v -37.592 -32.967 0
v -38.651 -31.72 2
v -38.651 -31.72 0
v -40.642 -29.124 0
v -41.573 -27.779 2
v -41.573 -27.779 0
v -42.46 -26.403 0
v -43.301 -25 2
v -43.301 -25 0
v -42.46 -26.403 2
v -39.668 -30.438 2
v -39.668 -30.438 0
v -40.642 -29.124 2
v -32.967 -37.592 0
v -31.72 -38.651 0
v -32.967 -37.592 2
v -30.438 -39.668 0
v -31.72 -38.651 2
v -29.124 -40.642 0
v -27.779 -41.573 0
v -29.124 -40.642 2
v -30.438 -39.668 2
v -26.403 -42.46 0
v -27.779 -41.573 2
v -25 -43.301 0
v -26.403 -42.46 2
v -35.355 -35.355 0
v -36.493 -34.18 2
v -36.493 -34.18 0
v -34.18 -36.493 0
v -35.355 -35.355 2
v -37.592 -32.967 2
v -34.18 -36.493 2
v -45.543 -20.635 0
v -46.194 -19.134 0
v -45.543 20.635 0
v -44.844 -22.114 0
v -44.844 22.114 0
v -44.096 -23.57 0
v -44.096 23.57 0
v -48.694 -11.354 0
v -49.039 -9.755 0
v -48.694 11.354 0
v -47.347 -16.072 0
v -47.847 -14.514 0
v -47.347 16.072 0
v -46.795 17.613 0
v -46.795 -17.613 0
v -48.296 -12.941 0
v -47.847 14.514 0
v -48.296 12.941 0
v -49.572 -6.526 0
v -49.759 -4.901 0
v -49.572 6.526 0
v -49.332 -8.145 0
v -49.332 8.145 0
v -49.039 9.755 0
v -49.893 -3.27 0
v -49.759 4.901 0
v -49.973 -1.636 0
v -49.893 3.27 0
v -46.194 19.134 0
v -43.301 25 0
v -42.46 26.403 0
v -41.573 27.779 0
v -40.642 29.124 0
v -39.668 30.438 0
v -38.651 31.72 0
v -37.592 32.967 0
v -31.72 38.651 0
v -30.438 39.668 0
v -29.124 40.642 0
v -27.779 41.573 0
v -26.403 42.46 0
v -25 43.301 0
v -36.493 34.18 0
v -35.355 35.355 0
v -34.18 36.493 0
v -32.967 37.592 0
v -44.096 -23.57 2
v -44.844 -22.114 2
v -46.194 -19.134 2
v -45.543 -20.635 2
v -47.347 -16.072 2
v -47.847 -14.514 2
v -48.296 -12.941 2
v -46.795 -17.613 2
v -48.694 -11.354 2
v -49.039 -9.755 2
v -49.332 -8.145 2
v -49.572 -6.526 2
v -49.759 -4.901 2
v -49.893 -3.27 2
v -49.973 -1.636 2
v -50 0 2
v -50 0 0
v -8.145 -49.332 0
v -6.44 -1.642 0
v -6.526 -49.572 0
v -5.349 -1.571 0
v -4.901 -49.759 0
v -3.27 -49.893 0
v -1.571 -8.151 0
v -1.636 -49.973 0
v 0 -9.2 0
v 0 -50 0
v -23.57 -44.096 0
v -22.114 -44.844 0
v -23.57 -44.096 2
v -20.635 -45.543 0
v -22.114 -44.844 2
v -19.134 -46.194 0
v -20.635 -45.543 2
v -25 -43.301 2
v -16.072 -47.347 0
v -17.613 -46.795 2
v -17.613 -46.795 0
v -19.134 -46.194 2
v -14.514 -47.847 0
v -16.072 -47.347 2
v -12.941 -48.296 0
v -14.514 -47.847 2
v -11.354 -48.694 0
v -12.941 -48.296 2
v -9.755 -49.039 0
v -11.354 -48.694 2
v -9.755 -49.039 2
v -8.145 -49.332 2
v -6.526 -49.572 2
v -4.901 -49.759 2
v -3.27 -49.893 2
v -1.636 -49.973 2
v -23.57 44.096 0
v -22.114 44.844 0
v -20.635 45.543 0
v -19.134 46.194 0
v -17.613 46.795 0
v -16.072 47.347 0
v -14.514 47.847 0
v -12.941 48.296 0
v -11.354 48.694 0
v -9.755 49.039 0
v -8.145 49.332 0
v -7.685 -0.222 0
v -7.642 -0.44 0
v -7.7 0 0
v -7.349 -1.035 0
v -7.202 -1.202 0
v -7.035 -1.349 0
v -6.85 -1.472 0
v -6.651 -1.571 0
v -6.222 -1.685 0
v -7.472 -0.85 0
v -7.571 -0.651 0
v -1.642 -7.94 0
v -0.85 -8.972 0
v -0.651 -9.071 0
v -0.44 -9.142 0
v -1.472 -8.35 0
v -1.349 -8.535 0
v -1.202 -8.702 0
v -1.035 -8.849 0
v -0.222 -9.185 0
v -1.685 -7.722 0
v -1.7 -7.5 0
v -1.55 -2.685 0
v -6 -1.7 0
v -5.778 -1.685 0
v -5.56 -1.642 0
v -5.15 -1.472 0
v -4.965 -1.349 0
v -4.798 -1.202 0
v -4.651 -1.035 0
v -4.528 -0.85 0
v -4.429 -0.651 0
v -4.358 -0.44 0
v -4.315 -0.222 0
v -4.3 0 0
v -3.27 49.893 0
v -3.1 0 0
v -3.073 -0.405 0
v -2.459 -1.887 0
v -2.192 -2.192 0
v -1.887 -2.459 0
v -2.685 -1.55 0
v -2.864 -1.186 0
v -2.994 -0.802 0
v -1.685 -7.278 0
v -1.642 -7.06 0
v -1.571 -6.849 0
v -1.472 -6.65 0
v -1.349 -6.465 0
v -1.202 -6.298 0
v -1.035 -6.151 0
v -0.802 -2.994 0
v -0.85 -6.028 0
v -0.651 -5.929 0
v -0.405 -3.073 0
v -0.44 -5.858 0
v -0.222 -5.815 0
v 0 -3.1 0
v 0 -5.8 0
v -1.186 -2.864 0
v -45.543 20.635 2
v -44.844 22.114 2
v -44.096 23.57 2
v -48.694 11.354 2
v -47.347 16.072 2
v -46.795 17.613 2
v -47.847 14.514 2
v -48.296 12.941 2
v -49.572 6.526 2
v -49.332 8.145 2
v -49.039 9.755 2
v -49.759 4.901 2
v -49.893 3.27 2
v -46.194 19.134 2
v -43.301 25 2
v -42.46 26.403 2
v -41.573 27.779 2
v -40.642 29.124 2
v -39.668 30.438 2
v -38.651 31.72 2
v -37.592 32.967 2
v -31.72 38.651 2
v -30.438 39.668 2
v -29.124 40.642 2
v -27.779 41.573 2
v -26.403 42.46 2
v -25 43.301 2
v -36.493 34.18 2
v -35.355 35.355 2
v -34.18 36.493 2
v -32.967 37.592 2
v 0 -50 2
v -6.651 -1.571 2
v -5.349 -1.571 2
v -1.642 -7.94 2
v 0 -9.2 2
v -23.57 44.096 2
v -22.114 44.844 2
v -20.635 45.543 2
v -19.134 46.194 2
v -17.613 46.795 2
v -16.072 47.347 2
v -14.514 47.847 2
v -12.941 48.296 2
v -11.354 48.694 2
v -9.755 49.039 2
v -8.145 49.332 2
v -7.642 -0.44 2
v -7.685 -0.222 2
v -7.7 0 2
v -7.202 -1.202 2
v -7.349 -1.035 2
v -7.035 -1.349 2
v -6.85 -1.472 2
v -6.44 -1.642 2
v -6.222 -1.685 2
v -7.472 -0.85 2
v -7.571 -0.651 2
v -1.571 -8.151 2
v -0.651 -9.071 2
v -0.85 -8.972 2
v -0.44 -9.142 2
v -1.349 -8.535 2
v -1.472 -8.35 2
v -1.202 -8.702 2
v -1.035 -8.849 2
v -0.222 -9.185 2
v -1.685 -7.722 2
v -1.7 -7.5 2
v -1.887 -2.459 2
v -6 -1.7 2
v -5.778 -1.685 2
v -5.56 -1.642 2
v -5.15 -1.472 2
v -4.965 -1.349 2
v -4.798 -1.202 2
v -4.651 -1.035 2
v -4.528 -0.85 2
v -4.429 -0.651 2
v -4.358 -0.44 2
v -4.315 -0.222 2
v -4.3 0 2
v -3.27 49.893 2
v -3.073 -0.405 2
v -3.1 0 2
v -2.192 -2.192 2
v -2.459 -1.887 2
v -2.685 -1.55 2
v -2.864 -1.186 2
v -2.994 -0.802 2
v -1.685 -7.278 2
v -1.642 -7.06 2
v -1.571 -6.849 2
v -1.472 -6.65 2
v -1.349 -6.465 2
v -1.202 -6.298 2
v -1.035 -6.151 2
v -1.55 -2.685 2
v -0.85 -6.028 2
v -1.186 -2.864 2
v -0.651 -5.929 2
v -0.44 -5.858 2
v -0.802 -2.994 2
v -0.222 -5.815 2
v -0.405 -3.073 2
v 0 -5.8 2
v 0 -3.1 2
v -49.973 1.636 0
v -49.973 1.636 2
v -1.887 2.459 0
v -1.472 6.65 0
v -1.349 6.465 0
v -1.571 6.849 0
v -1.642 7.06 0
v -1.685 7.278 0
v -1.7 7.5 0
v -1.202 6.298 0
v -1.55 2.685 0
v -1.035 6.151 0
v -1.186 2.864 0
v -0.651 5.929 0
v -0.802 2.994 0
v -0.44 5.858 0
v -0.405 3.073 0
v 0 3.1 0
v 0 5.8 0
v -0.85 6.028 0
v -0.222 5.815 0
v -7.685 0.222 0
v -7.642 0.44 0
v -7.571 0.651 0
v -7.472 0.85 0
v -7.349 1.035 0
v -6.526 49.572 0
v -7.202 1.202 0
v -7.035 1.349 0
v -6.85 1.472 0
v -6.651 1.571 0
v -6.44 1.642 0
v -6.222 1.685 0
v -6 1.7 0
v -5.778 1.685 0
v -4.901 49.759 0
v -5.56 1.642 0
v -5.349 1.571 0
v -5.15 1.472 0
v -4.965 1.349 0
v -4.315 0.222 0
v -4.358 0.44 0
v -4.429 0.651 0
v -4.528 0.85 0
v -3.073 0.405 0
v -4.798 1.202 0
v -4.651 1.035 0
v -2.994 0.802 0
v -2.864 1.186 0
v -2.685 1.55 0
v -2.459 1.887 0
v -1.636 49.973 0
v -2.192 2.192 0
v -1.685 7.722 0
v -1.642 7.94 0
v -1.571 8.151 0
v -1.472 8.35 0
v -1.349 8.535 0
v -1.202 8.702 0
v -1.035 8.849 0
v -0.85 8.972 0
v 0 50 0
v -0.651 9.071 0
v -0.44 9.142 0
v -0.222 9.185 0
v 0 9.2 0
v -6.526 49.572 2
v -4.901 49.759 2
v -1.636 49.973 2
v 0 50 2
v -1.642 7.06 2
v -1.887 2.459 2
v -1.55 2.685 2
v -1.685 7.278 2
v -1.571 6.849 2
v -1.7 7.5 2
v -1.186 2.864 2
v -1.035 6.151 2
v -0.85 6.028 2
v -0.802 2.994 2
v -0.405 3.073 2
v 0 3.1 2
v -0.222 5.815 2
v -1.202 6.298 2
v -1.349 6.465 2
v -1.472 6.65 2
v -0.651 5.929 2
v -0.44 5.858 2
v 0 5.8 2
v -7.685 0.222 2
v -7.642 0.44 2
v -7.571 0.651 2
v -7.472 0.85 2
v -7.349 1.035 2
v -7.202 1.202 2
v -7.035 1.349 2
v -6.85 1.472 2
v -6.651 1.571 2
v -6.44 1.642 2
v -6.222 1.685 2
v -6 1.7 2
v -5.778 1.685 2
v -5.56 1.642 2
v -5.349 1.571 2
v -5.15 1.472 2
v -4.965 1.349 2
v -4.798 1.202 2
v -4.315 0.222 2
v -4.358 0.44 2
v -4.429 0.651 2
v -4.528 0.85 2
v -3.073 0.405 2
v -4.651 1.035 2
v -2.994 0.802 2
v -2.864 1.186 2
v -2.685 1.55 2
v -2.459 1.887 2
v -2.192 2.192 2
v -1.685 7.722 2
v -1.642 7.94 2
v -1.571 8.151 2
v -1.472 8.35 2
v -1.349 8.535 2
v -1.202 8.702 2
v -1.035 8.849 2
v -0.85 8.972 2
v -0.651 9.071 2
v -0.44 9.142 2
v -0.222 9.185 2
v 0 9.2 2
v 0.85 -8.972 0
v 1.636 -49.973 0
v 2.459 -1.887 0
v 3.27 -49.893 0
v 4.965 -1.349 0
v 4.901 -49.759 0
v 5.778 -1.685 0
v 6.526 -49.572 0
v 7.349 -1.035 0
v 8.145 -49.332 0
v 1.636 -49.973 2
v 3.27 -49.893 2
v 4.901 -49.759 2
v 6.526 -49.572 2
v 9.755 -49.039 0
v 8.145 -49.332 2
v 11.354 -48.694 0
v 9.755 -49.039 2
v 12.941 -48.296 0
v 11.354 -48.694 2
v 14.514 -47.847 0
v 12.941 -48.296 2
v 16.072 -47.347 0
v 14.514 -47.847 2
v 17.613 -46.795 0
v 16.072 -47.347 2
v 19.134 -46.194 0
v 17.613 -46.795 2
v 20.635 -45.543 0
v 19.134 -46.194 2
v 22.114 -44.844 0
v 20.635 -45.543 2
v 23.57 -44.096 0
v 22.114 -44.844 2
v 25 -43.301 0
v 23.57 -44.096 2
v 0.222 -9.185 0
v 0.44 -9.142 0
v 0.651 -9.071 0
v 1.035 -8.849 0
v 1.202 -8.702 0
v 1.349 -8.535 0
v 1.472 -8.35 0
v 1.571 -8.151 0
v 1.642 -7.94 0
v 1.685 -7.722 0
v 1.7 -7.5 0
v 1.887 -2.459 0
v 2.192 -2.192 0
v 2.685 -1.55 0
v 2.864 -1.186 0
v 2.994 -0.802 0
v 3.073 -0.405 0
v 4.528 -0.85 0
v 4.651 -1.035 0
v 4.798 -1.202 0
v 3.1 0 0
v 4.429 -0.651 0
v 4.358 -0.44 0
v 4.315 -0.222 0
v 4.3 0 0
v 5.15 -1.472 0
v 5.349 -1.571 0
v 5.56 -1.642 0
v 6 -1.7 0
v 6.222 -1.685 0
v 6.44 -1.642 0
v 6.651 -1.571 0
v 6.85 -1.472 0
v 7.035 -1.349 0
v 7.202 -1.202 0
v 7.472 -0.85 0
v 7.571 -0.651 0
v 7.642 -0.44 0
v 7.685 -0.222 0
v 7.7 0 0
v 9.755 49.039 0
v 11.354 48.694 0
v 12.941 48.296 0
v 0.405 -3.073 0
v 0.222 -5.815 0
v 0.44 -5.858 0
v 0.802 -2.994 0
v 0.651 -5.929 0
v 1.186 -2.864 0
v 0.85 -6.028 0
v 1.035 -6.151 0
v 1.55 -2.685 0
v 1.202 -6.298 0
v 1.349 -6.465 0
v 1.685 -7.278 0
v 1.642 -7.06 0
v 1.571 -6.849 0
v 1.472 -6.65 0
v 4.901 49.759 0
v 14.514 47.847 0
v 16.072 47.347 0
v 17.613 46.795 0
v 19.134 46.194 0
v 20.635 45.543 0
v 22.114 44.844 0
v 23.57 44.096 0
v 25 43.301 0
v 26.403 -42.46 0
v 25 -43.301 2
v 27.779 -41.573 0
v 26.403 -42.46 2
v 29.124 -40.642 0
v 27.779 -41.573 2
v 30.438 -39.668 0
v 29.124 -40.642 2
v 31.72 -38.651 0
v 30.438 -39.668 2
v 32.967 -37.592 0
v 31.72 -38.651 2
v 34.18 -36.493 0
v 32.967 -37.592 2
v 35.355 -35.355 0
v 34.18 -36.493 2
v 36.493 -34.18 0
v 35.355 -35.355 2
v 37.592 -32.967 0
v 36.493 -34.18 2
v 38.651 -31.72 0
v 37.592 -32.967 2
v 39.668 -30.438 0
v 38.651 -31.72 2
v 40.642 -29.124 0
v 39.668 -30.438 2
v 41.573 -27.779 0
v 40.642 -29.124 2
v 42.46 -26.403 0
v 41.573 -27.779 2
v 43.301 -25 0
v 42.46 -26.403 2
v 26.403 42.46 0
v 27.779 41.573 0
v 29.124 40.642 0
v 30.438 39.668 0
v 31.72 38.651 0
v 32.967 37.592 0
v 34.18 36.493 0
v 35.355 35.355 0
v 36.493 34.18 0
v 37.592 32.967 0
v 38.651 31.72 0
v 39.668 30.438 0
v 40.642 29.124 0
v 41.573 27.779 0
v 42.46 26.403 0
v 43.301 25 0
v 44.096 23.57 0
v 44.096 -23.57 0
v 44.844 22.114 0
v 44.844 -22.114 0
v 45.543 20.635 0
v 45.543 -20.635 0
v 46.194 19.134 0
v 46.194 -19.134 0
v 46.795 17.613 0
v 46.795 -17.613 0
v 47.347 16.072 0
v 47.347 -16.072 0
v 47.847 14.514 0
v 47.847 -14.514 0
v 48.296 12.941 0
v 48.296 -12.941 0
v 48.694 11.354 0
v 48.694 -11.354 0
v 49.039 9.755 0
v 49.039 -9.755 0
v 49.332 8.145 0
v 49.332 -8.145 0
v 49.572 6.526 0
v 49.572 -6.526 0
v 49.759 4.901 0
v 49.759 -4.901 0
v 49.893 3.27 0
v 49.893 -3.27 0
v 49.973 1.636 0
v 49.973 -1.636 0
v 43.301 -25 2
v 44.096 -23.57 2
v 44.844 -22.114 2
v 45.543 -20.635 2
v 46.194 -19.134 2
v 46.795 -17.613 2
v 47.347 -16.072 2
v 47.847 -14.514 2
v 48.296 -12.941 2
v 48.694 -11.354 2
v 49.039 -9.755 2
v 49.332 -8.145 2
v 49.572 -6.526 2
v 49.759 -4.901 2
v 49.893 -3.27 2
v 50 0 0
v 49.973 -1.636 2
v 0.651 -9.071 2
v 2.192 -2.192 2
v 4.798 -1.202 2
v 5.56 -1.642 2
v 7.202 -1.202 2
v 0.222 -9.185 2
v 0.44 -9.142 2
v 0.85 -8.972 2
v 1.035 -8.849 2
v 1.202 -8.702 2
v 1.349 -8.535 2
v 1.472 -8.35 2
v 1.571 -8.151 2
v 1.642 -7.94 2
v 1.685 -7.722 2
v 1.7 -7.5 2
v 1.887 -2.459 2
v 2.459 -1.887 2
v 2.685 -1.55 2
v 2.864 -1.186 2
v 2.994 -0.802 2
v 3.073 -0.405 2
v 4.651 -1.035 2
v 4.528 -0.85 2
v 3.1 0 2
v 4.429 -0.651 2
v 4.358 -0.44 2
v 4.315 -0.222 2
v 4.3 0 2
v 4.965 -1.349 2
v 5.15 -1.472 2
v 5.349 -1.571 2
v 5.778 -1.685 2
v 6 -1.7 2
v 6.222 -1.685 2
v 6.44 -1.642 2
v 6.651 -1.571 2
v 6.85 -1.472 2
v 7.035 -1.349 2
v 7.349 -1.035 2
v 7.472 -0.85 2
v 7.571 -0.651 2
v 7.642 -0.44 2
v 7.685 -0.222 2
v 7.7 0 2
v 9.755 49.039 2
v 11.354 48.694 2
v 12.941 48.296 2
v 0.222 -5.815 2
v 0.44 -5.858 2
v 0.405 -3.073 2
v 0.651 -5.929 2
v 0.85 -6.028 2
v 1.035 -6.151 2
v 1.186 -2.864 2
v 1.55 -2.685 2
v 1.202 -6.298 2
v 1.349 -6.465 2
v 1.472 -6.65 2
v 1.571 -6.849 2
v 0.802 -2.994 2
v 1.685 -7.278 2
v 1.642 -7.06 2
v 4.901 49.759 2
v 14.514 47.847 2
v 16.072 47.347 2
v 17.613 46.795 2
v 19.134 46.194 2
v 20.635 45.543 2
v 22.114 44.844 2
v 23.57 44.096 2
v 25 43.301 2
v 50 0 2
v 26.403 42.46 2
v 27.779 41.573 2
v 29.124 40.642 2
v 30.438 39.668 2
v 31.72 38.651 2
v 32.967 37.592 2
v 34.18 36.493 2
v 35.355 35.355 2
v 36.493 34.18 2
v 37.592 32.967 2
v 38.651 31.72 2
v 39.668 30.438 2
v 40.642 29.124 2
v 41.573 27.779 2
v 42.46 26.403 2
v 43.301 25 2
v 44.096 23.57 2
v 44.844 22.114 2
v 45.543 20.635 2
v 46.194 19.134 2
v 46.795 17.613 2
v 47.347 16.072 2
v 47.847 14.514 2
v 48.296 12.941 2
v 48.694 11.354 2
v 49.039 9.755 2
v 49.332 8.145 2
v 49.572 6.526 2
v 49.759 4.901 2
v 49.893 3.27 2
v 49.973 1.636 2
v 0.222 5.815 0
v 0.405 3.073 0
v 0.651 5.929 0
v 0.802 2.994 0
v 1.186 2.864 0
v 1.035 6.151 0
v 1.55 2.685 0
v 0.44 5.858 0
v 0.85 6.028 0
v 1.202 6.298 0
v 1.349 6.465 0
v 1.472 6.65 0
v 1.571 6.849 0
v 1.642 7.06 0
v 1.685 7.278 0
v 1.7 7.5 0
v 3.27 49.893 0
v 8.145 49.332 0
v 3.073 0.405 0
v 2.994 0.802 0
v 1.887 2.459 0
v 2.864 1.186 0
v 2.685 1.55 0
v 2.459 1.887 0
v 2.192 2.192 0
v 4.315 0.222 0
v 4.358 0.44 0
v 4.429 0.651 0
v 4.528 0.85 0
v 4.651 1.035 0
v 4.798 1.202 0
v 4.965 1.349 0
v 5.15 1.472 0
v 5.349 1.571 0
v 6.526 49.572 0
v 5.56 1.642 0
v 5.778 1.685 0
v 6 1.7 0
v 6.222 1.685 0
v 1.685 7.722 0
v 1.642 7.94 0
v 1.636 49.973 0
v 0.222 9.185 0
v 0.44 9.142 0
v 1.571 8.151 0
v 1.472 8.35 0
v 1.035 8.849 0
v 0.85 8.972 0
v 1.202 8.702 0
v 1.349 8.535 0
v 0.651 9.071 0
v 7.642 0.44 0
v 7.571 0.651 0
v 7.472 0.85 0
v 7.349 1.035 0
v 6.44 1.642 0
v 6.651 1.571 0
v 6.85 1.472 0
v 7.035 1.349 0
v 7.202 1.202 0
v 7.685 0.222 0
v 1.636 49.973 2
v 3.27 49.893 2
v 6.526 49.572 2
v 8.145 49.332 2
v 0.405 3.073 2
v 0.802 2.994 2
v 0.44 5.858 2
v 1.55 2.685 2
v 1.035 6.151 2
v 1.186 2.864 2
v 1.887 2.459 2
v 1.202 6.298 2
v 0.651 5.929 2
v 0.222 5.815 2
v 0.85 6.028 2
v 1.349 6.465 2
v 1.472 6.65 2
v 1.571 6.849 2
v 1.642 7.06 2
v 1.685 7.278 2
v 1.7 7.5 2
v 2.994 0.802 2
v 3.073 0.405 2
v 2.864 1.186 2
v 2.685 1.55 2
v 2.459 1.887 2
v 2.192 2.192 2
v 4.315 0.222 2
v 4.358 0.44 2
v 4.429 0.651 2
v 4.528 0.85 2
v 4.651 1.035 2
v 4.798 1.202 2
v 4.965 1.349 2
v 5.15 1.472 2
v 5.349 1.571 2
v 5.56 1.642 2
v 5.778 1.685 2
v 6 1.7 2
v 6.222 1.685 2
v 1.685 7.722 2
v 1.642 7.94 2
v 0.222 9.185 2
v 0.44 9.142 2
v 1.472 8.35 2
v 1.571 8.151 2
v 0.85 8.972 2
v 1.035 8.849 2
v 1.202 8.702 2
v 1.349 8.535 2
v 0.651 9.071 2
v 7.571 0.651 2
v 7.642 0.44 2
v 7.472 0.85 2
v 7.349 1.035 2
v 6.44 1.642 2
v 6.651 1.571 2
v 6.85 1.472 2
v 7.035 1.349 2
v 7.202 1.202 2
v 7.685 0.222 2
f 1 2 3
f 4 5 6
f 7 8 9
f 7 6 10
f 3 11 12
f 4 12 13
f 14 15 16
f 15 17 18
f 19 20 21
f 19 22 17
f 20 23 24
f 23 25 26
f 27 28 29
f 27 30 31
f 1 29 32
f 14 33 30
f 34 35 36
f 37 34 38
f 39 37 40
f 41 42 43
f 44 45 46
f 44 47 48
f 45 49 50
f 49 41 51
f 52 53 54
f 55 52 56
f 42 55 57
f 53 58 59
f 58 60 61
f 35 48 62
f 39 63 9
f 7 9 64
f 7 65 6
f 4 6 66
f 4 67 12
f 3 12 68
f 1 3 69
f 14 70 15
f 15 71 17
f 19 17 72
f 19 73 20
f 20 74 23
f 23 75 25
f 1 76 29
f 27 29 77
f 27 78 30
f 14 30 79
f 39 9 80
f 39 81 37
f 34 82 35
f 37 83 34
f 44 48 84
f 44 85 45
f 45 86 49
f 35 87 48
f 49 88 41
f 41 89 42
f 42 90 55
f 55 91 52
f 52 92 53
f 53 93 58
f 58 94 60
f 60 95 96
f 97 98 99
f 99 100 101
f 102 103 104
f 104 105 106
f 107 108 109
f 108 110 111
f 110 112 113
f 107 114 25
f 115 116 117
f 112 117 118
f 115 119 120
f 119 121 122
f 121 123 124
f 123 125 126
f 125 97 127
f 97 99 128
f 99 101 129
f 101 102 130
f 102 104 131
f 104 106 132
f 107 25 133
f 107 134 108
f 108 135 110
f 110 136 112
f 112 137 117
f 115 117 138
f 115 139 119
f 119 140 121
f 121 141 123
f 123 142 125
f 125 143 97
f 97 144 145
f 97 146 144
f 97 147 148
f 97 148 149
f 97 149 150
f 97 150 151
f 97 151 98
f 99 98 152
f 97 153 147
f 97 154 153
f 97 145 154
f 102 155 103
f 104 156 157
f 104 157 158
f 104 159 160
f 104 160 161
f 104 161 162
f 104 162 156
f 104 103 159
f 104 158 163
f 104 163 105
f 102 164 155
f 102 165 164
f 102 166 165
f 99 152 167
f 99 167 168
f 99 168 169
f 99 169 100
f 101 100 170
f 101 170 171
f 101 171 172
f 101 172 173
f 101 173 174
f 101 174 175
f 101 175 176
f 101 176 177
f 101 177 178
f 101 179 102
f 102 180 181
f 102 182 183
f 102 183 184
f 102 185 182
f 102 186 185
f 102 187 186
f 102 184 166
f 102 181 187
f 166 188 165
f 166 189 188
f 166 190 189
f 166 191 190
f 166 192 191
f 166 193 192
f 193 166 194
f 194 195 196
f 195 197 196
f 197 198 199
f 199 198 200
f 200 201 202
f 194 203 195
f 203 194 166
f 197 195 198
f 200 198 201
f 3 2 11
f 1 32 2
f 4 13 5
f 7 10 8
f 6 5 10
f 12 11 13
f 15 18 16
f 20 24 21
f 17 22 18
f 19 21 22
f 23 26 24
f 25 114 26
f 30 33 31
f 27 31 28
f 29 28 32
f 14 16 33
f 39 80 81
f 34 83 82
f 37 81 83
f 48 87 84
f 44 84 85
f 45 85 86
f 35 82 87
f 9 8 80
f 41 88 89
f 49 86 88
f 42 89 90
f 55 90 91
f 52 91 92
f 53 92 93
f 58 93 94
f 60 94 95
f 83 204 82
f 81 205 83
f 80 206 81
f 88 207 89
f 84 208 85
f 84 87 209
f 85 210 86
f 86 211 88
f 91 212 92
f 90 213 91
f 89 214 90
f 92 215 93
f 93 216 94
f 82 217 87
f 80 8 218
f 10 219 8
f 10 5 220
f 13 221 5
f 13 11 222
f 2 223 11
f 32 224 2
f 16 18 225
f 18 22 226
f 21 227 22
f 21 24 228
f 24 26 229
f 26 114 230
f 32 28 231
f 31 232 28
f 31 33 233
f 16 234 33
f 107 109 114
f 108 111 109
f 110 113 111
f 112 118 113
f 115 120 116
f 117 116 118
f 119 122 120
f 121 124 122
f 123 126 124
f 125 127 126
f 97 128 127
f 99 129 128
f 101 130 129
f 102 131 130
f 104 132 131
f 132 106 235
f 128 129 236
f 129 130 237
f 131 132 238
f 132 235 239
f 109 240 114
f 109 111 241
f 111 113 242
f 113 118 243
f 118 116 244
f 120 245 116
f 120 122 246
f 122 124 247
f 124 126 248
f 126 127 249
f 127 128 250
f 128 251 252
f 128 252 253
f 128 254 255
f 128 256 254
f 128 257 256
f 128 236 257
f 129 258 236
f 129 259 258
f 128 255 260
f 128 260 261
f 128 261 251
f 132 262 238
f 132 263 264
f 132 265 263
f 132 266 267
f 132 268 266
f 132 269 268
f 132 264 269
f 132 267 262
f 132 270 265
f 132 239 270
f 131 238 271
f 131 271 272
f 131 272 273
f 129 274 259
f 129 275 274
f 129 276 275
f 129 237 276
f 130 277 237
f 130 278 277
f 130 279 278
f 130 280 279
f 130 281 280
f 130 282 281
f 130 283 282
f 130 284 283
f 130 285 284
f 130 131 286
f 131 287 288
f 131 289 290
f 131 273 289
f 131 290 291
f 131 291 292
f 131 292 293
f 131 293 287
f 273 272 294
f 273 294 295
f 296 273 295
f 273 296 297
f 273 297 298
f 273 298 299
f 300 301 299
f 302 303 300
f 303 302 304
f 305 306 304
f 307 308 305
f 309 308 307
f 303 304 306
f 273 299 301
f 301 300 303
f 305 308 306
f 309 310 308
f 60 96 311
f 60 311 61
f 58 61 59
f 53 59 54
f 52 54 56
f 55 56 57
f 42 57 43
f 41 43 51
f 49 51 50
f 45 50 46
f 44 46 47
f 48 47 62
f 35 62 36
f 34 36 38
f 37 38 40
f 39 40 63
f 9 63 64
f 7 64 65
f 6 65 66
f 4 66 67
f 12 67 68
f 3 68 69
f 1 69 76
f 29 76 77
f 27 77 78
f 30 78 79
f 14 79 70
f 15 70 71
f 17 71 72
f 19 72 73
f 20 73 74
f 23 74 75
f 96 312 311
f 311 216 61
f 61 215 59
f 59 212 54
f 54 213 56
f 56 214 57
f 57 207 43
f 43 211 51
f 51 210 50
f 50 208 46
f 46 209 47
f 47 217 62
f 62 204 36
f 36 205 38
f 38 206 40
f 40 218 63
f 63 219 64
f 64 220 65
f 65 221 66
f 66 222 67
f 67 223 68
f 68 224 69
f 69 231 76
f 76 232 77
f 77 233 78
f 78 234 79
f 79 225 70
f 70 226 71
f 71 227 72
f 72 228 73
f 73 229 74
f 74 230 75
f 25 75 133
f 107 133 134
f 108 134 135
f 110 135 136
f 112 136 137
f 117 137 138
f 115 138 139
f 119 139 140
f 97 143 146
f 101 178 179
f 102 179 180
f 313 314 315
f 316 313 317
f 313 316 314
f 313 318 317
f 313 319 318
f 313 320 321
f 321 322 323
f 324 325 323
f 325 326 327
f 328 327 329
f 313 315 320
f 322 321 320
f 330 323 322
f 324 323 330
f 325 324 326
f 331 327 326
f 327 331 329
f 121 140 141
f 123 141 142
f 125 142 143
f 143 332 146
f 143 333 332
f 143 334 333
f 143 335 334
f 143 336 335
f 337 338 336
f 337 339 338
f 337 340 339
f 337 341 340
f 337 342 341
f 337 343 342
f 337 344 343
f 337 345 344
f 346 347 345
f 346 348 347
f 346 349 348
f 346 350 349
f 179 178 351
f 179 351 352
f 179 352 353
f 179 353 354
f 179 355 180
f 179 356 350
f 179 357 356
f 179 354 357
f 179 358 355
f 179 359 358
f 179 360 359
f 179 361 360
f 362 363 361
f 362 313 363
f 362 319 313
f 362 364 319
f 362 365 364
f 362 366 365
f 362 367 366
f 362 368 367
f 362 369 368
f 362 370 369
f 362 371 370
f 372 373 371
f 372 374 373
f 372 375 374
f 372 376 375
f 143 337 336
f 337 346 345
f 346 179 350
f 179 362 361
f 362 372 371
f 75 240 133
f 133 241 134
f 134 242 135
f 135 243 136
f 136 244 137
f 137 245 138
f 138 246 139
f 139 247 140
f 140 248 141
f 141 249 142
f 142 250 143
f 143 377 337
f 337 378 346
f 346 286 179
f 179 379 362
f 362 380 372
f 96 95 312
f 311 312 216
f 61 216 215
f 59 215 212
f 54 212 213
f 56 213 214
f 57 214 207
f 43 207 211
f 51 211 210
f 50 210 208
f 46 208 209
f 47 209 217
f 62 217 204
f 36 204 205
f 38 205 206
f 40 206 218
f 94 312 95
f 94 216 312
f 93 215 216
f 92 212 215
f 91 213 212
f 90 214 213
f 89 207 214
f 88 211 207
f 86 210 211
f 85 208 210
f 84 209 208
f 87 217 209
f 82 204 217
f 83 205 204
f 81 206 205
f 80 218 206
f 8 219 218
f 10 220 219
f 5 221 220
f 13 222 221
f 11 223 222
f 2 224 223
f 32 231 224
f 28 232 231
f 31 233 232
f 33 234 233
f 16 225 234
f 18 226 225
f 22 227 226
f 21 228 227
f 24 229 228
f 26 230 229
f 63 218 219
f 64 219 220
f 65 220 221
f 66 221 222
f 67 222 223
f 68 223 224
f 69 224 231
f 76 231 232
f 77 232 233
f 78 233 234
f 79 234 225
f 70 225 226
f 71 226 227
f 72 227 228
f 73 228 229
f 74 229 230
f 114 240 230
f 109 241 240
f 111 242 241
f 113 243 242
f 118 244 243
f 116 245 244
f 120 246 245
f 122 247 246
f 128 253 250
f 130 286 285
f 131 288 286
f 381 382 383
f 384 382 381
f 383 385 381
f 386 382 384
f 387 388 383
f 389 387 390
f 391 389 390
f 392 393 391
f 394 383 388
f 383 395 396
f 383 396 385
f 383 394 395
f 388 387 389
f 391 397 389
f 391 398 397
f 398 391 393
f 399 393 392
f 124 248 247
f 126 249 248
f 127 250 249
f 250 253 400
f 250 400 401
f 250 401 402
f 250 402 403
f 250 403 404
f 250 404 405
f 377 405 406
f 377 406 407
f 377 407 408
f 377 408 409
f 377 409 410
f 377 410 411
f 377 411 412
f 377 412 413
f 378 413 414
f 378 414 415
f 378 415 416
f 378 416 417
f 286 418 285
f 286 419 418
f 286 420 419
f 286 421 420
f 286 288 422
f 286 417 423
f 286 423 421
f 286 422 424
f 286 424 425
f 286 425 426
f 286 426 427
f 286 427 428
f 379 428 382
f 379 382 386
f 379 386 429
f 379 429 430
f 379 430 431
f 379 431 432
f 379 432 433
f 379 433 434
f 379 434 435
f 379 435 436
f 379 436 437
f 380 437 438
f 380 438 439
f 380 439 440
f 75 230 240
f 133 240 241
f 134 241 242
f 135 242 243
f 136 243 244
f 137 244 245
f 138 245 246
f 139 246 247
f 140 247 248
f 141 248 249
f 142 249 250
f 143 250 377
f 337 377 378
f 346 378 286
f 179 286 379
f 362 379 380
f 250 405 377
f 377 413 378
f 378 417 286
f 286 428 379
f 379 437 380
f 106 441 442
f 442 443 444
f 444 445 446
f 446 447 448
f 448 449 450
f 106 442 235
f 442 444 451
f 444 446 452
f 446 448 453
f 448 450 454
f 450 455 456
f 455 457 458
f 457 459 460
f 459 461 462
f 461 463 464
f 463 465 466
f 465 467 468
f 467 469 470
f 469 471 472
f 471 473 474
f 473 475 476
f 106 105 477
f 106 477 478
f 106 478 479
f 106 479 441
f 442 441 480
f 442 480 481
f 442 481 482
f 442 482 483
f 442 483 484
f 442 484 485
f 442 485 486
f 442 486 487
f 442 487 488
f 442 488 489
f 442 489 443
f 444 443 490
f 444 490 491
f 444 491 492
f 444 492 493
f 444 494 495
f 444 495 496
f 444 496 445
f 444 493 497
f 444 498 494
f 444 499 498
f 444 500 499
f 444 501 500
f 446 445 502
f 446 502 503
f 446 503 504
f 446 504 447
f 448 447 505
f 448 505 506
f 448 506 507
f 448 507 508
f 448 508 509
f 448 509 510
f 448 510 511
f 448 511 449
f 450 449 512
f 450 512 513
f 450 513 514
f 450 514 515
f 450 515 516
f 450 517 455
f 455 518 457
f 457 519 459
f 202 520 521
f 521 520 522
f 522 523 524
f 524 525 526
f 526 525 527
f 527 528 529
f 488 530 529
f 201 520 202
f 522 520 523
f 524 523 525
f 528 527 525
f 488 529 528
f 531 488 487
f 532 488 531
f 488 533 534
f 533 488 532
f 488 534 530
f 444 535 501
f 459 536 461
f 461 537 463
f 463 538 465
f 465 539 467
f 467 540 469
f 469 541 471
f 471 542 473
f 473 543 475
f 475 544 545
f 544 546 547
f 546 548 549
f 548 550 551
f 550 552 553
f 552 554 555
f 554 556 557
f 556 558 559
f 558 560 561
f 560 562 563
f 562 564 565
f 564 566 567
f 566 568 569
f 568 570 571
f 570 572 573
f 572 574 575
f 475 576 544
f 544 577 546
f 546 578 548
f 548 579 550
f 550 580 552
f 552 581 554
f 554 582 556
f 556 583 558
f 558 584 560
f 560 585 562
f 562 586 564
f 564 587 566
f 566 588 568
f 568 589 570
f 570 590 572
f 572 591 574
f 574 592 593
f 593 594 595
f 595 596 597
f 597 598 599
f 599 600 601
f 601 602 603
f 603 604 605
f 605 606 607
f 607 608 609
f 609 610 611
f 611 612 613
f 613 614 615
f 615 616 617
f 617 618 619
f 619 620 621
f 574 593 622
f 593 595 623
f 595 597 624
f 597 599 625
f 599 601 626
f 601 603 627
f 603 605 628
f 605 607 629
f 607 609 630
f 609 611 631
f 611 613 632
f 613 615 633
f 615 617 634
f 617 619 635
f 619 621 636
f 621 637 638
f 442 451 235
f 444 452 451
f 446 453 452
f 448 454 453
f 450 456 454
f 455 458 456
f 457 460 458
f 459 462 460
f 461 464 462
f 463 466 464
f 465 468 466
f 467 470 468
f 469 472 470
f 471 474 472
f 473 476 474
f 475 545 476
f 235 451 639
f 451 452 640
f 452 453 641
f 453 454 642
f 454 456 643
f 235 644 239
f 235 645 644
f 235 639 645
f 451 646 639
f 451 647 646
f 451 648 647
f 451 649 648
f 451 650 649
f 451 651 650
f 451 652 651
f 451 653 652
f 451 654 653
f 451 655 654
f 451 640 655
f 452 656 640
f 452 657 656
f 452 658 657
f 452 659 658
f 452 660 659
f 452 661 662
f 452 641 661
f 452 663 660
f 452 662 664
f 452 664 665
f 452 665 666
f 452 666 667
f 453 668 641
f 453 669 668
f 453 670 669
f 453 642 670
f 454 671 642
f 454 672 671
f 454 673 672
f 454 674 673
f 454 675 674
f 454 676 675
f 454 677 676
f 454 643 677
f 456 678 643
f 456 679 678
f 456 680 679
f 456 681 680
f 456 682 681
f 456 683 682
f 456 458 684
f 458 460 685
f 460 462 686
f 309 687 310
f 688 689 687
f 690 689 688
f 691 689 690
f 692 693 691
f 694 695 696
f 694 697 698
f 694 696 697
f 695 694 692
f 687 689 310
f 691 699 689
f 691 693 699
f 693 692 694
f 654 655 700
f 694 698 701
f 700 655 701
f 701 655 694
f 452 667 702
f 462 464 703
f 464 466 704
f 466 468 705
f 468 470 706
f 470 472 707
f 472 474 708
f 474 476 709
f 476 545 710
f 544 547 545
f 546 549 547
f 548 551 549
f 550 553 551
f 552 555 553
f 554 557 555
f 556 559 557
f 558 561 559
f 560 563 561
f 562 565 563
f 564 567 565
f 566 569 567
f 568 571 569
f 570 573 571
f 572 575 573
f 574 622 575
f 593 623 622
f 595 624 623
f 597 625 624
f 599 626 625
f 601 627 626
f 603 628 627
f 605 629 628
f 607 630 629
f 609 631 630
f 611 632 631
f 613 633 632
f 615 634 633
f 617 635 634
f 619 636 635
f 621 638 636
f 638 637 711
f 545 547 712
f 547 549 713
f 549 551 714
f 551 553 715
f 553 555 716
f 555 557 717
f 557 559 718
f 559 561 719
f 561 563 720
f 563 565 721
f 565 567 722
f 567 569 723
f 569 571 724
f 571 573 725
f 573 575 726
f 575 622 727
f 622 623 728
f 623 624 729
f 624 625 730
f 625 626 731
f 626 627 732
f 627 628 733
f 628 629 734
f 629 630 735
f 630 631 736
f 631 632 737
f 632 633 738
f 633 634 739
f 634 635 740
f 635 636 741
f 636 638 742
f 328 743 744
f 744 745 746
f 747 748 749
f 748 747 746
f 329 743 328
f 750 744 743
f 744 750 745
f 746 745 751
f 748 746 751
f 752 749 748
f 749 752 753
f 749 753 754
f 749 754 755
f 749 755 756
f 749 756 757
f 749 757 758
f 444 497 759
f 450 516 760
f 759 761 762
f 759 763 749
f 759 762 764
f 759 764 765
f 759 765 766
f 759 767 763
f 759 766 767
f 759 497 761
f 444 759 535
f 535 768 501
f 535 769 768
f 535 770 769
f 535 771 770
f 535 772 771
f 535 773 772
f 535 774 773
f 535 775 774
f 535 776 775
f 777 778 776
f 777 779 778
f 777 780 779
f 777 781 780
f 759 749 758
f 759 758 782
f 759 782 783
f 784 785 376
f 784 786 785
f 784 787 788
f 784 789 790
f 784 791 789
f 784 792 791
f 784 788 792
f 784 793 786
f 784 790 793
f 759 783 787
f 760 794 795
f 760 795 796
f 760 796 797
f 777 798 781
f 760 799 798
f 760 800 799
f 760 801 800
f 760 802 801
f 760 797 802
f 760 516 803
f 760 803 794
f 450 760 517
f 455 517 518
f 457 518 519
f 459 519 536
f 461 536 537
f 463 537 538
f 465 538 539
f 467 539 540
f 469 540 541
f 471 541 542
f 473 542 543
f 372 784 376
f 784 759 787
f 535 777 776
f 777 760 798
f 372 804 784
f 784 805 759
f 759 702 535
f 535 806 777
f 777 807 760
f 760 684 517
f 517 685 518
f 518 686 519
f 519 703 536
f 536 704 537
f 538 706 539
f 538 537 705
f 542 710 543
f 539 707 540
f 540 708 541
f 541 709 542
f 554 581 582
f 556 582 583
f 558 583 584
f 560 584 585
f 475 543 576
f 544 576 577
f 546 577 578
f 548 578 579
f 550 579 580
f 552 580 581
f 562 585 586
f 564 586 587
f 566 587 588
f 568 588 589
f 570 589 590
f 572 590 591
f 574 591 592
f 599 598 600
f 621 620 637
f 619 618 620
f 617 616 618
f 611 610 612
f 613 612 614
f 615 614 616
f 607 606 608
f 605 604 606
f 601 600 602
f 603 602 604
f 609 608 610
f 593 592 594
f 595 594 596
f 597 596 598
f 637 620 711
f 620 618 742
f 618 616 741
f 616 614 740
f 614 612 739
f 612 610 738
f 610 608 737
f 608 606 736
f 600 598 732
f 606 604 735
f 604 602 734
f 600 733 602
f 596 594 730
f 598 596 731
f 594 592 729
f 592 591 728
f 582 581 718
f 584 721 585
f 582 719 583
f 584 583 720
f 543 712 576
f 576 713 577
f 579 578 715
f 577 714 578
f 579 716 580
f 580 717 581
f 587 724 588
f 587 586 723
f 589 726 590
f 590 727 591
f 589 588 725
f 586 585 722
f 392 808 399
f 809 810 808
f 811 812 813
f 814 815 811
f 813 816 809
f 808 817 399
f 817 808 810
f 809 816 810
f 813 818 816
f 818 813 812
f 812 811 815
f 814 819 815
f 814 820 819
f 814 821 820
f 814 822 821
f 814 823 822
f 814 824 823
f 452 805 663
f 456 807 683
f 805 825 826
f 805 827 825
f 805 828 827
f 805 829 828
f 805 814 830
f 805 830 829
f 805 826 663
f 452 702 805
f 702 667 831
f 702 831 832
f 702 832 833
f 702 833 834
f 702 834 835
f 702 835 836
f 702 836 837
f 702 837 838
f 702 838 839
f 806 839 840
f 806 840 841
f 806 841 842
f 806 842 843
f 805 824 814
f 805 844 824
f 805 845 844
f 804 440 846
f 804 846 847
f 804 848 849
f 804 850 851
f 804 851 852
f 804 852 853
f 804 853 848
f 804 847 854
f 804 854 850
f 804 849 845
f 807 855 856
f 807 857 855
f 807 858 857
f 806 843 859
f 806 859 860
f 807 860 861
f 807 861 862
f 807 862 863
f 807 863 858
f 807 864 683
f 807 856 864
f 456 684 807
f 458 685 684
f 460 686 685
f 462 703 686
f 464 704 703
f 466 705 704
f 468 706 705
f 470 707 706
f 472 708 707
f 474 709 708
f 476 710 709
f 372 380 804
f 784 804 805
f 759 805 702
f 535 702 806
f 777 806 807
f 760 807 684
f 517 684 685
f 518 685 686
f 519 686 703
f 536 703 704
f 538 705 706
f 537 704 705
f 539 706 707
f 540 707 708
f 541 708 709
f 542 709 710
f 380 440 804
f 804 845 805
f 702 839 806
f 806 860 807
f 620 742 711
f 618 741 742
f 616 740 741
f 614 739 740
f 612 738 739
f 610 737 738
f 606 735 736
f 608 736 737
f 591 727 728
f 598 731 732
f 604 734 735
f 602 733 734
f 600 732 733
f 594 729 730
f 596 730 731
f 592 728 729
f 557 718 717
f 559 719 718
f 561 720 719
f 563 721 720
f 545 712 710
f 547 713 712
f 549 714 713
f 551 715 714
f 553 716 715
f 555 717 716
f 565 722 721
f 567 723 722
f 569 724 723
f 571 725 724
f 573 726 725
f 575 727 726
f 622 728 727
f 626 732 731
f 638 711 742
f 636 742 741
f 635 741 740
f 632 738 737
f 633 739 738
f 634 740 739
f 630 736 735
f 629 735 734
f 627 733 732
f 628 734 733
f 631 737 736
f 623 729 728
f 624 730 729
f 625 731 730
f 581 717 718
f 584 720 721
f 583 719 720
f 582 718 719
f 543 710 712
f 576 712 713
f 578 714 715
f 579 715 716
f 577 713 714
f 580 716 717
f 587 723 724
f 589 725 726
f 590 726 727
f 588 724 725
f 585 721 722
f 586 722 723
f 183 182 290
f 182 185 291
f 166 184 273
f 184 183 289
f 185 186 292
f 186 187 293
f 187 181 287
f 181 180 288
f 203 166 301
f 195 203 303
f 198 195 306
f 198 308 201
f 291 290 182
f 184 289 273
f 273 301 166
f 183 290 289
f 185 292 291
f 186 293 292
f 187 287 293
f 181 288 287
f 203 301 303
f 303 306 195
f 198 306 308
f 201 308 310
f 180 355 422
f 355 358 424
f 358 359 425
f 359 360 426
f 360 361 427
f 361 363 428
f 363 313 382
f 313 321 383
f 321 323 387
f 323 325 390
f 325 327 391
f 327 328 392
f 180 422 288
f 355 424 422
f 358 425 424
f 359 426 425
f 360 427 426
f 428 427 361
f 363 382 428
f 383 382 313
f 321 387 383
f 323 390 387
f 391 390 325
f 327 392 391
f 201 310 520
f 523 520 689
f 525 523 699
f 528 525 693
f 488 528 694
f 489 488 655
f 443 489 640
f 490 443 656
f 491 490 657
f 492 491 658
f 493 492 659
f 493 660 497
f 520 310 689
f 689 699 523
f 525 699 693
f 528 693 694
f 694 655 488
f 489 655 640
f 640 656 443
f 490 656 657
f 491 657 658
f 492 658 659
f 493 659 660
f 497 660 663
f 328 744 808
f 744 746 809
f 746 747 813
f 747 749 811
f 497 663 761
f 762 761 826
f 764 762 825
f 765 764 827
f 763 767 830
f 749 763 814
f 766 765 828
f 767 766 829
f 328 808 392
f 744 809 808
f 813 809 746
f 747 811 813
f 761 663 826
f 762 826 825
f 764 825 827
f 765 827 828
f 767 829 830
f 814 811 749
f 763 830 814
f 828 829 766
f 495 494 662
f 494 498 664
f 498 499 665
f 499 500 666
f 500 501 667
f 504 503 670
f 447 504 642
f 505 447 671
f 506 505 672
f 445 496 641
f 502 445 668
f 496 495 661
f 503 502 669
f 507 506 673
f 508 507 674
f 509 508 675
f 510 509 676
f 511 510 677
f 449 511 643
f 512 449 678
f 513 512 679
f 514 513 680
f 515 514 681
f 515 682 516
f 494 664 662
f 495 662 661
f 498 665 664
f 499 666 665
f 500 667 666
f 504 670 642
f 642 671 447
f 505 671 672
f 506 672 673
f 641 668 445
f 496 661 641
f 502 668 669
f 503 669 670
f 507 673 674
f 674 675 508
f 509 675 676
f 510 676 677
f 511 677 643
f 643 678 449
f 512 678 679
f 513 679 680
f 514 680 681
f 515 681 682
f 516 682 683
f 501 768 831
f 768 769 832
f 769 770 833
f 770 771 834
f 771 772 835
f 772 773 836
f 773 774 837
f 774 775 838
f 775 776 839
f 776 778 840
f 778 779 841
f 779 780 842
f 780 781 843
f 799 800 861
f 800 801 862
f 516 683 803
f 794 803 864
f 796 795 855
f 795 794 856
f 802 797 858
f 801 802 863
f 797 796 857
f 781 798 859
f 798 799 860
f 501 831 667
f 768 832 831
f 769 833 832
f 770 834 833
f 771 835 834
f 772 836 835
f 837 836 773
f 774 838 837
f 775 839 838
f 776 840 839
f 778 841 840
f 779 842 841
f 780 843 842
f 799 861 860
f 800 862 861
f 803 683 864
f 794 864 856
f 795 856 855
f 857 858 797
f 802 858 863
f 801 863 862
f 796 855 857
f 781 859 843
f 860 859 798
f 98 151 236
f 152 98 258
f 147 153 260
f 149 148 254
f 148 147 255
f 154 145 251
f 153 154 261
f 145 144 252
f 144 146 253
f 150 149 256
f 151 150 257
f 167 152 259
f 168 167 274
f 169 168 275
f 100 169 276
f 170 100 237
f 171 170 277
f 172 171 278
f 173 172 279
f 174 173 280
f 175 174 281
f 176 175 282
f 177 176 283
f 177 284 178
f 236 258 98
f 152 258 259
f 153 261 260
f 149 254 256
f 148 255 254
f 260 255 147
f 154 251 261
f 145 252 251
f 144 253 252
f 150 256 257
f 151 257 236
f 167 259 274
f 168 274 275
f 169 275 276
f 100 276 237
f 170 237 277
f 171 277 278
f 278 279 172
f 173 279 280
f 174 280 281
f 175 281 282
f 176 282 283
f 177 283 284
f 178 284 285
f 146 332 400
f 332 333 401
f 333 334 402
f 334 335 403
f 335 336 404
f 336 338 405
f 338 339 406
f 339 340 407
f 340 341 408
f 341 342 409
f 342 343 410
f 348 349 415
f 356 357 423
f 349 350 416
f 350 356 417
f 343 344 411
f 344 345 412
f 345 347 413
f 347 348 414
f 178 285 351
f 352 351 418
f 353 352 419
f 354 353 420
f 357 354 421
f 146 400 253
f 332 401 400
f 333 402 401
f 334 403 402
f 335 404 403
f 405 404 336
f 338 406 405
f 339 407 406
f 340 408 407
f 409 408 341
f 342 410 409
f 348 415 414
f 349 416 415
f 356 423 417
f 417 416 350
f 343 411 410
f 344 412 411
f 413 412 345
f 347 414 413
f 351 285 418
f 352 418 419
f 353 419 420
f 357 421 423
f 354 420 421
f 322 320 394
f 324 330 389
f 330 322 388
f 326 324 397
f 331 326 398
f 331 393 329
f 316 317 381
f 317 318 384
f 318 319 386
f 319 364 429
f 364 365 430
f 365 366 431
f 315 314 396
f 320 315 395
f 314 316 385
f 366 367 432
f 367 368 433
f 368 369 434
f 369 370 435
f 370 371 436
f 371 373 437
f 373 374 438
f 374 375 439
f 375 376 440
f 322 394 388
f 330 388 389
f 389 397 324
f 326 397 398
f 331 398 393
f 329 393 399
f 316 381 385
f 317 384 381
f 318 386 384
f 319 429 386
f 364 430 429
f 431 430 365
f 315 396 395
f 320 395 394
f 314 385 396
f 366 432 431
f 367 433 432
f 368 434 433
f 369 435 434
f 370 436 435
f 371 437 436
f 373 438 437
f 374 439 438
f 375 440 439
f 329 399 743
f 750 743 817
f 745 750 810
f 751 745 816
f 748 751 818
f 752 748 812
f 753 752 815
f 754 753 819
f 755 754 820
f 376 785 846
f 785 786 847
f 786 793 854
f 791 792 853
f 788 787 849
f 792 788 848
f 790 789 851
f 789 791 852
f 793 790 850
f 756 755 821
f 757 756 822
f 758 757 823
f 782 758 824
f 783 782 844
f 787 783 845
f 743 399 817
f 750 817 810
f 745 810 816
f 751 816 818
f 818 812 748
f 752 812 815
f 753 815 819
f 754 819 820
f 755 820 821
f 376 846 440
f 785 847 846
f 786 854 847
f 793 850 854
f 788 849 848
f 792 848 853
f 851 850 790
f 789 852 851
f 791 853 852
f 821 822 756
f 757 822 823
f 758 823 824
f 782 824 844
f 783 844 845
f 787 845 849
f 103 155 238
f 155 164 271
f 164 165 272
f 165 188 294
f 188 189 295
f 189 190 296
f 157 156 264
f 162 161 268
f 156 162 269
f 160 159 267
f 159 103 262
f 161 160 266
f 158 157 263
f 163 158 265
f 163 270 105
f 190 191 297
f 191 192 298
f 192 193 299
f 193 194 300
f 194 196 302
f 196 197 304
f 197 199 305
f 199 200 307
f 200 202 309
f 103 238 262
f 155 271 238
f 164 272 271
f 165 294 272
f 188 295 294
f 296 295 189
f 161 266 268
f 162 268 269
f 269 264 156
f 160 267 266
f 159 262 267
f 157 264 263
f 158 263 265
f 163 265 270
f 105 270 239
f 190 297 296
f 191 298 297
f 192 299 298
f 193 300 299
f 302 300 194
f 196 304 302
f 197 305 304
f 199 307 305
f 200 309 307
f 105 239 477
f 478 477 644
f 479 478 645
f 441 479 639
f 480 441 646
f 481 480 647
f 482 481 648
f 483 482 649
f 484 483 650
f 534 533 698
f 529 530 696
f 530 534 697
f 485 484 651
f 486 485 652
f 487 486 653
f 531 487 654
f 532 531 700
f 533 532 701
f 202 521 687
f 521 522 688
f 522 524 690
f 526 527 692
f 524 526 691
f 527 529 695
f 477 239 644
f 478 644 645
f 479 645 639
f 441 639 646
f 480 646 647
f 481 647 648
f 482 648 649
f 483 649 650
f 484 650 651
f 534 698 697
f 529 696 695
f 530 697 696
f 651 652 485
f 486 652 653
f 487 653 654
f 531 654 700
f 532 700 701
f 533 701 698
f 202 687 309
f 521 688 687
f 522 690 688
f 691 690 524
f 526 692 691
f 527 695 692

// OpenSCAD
// POV 3D 转子侧垫片 hub_shim_v4  (2026-09-03)
// 垫在电机 bell top 与 hub_disc 底面之间 (motor_shim_v4 的转子侧对应件)。
// 与 build_stl.py 的参数必须一致 (本文件是复刻不是 import)。

// ---- 复刻自 models/hub_disc/build_stl.py ----
hub_base_od     = 165;
hub_m3_diam     = 3.2;
diag_x          = 12;     // pattern A 菱形对角 X
diag_y          = 15;     // pattern A 菱形对角 Y
center_cb_diam  = 6.2;    // hub 底面中心盲窝 (深 2.2)

// ---- 垫片自身 ----
thick    = 2;                  // 2026-09-03 用户指定
od       = 100;                // 2026-09-03 用户指定 (「直径做 10cm」)
m3_diam  = 3.4;                // 过孔 (hub 上是 Φ3.2, 这里放 0.2)
center_d = center_cb_diam;     // 6.2

pattern_a = [[ diag_x/2, 0], [-diag_x/2, 0],
             [ 0, diag_y/2], [ 0, -diag_y/2]];

module hub_shim_v4() {
    difference() {
        cylinder(h = thick, d = od, $fn = 192);

        // 中央 Φ6.2 通孔 (对 hub 底面中心窝)
        translate([0, 0, -1])
            cylinder(h = thick + 2, d = center_d, $fn = 48);

        // 4 × Φ3.4 菱形过孔 (对角 12×15, 对电机 bell 的 4 孔菱形)
        for (p = pattern_a)
            translate([p[0], p[1], -1])
                cylinder(h = thick + 2, d = m3_diam, $fn = 48);
    }
}

hub_shim_v4();
